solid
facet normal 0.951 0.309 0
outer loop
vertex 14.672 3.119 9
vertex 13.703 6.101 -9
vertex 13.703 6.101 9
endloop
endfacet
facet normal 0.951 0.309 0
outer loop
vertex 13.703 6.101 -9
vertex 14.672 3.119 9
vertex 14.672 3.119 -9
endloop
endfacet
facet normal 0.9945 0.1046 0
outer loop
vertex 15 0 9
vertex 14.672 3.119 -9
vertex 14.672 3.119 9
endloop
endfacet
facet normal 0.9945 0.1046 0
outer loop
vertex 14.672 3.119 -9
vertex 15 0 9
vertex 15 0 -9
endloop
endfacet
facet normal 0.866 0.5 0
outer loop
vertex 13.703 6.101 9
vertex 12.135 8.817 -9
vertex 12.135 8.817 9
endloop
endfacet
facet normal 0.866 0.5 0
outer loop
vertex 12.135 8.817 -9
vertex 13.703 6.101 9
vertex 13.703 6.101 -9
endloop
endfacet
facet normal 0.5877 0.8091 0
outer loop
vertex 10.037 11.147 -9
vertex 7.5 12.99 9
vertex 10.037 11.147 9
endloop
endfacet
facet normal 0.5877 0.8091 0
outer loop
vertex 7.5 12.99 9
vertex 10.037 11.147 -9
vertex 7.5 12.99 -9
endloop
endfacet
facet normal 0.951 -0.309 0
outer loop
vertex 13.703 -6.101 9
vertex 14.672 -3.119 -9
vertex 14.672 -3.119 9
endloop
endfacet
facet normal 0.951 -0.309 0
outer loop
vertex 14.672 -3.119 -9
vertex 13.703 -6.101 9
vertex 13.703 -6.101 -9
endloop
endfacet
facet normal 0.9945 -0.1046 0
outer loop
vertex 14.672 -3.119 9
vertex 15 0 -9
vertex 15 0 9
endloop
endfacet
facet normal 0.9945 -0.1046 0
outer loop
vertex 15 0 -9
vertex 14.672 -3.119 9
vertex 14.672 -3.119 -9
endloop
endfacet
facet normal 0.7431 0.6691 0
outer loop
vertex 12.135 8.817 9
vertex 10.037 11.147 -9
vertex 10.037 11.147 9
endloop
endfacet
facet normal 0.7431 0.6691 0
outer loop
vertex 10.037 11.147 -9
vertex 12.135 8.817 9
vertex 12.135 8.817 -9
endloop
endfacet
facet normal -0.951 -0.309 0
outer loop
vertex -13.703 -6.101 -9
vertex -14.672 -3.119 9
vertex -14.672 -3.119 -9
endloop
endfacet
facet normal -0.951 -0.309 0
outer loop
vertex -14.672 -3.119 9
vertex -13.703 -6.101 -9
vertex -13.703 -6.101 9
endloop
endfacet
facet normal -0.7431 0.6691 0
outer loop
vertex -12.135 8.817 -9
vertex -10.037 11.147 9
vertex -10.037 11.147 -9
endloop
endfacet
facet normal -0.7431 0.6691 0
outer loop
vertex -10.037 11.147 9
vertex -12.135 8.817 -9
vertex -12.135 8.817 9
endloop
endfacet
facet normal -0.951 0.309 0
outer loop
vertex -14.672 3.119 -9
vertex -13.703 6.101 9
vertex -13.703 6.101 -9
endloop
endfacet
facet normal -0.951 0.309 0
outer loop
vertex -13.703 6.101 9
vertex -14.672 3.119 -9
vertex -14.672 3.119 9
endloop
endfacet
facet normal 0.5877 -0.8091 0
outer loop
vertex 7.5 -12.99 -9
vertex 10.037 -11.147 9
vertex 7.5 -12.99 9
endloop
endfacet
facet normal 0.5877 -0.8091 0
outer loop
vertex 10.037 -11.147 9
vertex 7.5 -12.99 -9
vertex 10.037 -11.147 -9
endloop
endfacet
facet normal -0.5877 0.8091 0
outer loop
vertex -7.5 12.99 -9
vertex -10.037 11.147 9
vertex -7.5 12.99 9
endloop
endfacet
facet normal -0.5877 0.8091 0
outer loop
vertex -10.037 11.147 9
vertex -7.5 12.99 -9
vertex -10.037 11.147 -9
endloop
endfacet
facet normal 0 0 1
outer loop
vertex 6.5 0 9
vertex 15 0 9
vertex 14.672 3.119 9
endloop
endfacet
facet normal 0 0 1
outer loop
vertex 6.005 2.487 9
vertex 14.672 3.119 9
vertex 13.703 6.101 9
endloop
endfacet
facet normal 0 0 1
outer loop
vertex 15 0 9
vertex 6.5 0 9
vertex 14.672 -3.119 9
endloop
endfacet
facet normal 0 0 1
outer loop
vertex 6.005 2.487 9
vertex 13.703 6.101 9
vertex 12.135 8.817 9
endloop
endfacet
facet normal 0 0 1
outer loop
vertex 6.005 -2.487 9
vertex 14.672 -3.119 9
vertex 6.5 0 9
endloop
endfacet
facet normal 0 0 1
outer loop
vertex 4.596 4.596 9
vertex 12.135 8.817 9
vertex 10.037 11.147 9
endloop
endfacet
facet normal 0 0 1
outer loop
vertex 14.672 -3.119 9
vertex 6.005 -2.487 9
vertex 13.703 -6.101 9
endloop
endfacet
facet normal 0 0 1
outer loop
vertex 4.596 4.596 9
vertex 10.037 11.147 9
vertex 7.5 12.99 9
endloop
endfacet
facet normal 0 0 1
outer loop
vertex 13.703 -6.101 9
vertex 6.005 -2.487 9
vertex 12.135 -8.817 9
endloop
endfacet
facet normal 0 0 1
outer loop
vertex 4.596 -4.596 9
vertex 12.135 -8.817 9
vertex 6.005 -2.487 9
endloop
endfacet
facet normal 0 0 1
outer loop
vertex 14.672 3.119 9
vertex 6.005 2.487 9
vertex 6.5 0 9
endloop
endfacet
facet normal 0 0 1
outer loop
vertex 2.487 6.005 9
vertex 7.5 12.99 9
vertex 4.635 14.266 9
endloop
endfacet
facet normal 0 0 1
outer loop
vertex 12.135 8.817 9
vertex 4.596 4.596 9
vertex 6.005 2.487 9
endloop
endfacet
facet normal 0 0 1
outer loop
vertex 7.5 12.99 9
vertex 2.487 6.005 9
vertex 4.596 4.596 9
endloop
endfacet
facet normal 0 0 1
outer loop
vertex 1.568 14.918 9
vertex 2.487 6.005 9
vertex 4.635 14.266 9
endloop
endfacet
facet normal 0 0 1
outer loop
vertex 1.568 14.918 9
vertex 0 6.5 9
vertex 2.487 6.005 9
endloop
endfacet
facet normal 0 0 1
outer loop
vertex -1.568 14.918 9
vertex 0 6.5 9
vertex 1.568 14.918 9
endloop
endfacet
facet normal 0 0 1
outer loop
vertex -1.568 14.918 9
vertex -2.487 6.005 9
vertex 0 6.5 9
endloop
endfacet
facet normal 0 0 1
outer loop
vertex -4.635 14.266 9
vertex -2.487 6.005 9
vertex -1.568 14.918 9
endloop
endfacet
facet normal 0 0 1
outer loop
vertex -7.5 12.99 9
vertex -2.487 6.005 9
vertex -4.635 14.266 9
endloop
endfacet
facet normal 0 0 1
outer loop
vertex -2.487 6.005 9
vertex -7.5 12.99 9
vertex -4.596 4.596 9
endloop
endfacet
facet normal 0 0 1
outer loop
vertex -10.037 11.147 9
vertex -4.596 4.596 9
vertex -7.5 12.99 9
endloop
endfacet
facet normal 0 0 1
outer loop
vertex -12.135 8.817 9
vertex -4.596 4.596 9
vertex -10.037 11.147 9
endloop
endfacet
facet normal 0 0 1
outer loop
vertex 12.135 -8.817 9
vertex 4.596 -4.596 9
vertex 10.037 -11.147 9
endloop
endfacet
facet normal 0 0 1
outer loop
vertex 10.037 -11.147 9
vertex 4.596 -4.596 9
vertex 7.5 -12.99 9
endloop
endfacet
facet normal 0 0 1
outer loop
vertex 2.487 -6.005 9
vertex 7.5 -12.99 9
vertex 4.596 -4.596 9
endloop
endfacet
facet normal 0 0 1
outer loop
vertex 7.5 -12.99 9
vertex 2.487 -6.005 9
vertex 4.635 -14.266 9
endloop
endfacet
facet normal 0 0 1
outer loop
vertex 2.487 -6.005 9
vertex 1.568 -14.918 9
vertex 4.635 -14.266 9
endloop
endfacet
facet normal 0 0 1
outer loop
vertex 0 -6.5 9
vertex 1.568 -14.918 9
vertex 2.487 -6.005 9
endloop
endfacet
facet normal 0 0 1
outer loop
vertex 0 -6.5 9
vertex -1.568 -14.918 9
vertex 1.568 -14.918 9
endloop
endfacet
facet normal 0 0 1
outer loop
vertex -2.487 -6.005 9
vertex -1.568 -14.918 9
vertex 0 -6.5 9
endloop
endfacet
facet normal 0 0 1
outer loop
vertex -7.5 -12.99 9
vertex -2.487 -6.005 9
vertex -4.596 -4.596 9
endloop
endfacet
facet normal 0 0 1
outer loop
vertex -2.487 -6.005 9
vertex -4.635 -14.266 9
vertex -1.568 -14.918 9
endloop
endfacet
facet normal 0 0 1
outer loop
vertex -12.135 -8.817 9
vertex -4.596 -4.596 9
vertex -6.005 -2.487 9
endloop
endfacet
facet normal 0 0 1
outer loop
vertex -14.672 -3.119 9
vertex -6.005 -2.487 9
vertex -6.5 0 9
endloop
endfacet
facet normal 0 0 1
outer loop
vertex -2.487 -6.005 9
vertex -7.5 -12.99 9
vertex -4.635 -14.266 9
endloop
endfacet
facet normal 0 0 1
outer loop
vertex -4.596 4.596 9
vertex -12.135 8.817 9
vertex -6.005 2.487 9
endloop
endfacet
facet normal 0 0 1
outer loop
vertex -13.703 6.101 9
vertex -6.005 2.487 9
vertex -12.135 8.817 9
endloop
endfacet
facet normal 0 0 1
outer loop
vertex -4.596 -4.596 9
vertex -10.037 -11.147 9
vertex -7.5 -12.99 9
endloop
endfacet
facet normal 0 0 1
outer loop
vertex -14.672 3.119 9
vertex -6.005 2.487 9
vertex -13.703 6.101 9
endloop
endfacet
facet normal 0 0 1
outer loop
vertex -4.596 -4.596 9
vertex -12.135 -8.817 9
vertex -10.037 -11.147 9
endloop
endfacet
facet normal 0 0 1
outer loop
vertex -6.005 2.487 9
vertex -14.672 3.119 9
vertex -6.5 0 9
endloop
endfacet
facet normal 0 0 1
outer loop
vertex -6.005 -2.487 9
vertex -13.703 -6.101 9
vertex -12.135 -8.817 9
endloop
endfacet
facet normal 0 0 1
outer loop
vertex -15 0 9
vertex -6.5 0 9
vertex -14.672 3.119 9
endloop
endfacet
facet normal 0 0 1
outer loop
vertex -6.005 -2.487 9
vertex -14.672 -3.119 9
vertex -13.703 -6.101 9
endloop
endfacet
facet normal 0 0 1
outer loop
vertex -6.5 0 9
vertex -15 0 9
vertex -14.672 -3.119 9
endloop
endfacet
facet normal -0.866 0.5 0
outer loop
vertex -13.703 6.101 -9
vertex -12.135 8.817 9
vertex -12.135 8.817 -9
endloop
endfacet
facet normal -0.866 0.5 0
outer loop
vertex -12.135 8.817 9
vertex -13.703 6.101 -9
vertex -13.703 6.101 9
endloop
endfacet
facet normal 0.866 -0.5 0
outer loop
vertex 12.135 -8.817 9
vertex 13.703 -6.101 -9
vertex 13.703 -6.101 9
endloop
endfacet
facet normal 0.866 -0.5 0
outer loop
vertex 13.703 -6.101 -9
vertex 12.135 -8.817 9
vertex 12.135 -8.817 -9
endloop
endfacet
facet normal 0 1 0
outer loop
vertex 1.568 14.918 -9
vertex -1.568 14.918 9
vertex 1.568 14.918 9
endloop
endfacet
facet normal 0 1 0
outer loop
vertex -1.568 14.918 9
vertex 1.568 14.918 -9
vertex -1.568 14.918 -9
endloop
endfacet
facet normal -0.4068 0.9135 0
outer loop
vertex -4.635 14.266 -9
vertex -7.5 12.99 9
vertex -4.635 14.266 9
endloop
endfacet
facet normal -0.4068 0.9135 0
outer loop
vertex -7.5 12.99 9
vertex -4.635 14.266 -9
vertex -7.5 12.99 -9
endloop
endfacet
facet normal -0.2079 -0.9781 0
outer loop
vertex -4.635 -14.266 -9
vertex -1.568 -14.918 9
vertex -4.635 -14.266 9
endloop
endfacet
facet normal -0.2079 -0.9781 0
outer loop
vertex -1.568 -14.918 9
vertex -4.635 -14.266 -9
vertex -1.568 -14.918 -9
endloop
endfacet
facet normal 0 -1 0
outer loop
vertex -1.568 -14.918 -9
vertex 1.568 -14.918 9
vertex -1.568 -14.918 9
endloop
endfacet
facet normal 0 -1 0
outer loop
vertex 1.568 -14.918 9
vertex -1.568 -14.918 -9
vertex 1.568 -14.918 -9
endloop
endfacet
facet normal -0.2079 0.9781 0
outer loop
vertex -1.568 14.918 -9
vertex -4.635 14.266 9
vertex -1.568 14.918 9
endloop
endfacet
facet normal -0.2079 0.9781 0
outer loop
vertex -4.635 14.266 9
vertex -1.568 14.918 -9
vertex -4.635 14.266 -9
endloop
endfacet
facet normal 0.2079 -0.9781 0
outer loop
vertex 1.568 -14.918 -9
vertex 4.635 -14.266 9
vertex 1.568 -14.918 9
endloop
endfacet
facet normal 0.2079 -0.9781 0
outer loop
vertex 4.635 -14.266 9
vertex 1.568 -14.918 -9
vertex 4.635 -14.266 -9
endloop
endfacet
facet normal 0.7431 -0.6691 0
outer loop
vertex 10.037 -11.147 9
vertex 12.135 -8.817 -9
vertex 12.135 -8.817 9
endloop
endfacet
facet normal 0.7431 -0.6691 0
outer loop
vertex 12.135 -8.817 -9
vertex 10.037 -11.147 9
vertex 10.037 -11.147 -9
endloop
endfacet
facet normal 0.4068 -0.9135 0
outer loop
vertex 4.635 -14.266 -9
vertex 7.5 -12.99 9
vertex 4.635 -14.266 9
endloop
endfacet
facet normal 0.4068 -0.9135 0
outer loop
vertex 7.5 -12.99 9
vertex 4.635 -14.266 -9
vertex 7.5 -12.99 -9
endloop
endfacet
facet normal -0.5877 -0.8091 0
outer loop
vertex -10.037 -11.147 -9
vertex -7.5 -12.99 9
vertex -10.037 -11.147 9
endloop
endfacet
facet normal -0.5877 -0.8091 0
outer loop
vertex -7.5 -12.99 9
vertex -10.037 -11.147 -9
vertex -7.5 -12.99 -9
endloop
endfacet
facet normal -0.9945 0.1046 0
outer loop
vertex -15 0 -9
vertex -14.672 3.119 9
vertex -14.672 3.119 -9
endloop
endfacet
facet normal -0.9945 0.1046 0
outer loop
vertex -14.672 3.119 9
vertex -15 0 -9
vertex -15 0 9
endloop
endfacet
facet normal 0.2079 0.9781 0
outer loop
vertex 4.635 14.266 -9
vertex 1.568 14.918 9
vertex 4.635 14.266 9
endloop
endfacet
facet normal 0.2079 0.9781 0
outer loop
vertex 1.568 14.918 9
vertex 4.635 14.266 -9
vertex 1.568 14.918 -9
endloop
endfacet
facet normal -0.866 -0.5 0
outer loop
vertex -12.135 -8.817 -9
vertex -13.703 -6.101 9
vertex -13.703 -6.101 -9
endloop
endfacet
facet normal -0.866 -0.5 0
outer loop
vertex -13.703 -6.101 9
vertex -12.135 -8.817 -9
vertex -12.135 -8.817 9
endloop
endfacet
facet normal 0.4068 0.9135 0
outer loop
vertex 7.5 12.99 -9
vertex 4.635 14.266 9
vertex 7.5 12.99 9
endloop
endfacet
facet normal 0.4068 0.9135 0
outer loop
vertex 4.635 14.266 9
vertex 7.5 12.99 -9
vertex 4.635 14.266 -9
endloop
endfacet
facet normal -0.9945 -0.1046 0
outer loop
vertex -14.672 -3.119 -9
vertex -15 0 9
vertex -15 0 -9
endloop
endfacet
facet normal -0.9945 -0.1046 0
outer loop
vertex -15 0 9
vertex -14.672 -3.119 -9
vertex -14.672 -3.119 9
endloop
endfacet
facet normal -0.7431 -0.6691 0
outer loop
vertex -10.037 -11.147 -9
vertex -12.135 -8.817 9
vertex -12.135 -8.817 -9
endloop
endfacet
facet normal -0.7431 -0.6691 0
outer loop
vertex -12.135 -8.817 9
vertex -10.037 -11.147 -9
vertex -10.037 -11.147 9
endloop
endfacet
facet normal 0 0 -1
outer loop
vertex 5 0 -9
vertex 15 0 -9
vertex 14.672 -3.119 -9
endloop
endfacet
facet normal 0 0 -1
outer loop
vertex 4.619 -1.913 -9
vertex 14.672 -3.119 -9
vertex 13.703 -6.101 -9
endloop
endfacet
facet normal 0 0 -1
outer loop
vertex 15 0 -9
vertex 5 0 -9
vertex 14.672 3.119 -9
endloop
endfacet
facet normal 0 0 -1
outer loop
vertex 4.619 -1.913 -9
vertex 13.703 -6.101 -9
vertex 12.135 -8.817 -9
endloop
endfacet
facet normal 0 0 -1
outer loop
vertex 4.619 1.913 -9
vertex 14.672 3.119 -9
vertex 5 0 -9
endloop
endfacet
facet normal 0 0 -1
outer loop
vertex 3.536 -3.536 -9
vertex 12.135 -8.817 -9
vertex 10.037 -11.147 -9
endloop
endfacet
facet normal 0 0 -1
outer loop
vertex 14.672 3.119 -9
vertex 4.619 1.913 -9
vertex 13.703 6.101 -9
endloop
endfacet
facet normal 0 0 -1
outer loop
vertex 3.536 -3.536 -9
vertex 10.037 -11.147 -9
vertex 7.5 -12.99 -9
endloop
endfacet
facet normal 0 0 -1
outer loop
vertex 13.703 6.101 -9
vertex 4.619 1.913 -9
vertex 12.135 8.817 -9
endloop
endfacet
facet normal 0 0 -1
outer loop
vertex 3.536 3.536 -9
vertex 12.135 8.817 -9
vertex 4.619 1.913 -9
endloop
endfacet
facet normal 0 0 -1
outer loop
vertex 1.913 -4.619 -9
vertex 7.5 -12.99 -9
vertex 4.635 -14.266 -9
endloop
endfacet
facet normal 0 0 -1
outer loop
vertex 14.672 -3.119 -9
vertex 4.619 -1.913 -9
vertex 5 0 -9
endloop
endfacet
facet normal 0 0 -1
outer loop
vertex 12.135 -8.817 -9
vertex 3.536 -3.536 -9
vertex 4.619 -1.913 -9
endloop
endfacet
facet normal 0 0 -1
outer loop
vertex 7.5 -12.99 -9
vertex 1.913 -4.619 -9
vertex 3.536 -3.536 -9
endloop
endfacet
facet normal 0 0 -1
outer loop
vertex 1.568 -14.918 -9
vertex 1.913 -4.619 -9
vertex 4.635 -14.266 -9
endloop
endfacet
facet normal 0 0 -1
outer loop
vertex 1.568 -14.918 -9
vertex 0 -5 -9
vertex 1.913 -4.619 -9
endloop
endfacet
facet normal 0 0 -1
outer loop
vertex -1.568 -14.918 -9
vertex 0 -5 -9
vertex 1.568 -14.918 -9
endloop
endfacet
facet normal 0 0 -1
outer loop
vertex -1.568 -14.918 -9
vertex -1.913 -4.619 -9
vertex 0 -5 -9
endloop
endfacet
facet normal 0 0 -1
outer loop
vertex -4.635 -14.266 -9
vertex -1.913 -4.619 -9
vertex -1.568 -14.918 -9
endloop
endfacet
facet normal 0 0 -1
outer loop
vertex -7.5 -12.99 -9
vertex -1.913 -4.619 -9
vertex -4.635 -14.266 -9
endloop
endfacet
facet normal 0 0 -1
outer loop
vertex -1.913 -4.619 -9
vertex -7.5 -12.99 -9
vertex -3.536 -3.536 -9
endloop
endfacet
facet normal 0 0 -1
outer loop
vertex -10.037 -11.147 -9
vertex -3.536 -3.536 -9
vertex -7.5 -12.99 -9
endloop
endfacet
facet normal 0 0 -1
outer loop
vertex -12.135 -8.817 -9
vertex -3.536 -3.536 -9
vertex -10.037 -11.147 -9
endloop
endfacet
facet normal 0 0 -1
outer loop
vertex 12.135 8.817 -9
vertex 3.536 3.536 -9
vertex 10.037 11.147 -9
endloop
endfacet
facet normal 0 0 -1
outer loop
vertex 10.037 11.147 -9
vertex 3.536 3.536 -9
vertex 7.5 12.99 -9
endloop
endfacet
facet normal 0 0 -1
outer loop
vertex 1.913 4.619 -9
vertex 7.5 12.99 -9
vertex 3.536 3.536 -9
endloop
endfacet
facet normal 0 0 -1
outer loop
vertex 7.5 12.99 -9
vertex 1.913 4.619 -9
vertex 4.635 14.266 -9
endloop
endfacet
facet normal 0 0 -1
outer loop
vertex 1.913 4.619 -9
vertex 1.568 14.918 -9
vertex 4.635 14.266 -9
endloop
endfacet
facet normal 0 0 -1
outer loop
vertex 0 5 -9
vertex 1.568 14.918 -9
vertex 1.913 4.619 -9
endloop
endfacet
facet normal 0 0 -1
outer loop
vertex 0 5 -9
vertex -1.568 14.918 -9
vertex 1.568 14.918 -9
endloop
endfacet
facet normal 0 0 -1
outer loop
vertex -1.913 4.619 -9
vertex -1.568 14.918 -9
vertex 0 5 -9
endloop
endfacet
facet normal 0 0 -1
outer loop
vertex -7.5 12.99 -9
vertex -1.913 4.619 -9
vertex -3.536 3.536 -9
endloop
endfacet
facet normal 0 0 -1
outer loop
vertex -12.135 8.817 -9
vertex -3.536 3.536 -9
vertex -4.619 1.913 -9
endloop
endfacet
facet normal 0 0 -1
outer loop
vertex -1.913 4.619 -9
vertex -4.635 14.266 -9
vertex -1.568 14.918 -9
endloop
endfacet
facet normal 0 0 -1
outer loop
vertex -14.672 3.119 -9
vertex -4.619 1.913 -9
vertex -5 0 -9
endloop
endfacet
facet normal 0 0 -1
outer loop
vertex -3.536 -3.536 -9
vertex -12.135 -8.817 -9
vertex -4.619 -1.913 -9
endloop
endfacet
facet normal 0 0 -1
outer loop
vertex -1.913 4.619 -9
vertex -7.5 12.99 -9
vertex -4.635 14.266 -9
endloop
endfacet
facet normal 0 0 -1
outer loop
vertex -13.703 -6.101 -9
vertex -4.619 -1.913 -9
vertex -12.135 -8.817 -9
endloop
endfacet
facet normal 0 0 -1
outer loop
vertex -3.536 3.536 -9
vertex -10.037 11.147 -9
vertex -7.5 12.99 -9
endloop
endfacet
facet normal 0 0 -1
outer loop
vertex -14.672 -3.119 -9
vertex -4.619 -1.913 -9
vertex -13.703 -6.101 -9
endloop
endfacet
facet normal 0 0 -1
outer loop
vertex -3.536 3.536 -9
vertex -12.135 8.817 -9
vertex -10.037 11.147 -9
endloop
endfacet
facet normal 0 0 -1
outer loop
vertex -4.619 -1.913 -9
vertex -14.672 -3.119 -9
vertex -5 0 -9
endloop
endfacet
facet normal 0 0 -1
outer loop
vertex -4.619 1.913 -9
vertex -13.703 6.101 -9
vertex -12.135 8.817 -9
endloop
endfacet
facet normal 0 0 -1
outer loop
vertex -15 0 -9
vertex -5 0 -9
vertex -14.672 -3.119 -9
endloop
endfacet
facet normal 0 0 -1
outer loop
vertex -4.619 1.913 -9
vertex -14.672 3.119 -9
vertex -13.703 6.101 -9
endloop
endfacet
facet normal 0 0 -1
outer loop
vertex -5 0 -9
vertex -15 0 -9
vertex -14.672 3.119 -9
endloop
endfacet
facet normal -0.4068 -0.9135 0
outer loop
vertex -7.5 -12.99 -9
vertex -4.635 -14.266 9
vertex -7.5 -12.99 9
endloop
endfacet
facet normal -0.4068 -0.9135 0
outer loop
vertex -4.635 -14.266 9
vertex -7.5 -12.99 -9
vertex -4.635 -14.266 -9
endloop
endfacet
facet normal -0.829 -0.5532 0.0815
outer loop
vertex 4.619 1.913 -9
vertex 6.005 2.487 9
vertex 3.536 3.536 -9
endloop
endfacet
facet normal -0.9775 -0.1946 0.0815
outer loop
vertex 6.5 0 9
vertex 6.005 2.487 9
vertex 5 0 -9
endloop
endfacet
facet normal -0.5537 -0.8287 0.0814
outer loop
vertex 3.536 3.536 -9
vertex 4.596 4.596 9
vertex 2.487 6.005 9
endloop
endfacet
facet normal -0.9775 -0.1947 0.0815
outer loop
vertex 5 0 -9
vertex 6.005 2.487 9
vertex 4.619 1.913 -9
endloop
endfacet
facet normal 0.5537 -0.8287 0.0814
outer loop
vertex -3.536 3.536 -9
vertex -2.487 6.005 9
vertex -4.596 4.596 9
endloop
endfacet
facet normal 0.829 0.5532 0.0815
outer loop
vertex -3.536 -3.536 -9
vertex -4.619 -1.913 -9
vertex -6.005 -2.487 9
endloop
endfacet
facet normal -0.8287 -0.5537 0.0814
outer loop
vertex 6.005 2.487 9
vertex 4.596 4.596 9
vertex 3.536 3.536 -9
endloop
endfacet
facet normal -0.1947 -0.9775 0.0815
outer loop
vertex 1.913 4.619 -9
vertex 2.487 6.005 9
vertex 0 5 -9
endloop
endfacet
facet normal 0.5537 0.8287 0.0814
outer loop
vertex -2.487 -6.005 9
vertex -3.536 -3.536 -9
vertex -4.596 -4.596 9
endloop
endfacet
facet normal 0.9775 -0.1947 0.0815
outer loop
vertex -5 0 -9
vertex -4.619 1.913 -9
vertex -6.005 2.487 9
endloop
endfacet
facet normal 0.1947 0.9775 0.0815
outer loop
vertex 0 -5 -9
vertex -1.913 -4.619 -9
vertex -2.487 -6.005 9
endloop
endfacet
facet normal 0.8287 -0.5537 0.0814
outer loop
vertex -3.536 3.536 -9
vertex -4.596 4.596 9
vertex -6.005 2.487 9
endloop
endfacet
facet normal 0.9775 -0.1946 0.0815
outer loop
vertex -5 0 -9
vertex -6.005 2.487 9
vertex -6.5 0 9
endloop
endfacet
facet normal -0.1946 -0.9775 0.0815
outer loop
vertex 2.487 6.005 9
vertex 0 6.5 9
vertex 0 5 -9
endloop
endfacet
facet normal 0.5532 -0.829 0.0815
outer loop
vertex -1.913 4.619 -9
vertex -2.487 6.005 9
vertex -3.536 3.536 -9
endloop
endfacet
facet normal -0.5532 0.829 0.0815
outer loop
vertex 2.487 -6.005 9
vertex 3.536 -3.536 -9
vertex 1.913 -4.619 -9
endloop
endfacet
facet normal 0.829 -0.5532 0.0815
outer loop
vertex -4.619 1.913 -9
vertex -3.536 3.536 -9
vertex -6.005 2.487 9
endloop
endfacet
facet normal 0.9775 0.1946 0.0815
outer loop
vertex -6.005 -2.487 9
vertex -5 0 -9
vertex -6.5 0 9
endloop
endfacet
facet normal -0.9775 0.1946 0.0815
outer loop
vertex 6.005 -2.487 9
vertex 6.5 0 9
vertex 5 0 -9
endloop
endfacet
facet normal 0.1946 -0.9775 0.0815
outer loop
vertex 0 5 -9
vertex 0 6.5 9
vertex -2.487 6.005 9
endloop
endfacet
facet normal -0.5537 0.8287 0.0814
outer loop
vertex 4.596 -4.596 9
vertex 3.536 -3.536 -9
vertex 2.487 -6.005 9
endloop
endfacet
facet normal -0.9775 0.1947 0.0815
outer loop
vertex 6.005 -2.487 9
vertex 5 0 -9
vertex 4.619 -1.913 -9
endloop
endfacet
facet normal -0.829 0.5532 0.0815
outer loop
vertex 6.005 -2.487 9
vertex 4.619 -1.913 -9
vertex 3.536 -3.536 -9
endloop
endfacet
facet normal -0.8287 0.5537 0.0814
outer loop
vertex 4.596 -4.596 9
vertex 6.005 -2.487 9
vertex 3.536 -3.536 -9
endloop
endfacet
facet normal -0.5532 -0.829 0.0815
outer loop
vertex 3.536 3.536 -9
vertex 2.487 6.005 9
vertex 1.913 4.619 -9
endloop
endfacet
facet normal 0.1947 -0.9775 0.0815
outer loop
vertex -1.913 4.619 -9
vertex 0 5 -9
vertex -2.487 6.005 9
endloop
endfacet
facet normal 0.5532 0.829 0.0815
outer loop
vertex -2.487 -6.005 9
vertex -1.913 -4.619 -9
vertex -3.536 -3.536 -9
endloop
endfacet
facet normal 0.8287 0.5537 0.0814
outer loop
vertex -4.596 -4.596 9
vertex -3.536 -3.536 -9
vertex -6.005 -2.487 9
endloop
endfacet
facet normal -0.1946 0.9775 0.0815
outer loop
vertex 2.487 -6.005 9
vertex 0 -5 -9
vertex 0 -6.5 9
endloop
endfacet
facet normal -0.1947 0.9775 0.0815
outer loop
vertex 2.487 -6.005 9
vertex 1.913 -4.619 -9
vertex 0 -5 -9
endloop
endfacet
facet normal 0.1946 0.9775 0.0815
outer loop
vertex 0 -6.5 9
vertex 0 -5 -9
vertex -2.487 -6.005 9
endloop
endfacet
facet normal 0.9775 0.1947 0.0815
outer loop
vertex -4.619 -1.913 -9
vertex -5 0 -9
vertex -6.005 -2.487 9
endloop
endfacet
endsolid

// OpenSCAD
// Parameters
outer_diameter = 30;  // Outer diameter of the hub
height = 18;          // Adjusted height to better match the original model
inner_diameter_top = 10;  // Inner hole diameter at the top
inner_diameter_bottom = 13; // Adjusted inner hole diameter at the bottom for a less pronounced conical shape

// Module to create the cylindrical hub with a conical hole
module cylindrical_hub() {
    difference() {
        // Main cylindrical body
        cylinder(h=height, d=outer_diameter, center=true);
        
        // Conical inner hole
        translate([0, 0, -height/2])
        linear_extrude(height=height, scale=inner_diameter_bottom/inner_diameter_top)
        circle(d=inner_diameter_top);
    }
}

// Render the cylindrical hub
cylindrical_hub();
